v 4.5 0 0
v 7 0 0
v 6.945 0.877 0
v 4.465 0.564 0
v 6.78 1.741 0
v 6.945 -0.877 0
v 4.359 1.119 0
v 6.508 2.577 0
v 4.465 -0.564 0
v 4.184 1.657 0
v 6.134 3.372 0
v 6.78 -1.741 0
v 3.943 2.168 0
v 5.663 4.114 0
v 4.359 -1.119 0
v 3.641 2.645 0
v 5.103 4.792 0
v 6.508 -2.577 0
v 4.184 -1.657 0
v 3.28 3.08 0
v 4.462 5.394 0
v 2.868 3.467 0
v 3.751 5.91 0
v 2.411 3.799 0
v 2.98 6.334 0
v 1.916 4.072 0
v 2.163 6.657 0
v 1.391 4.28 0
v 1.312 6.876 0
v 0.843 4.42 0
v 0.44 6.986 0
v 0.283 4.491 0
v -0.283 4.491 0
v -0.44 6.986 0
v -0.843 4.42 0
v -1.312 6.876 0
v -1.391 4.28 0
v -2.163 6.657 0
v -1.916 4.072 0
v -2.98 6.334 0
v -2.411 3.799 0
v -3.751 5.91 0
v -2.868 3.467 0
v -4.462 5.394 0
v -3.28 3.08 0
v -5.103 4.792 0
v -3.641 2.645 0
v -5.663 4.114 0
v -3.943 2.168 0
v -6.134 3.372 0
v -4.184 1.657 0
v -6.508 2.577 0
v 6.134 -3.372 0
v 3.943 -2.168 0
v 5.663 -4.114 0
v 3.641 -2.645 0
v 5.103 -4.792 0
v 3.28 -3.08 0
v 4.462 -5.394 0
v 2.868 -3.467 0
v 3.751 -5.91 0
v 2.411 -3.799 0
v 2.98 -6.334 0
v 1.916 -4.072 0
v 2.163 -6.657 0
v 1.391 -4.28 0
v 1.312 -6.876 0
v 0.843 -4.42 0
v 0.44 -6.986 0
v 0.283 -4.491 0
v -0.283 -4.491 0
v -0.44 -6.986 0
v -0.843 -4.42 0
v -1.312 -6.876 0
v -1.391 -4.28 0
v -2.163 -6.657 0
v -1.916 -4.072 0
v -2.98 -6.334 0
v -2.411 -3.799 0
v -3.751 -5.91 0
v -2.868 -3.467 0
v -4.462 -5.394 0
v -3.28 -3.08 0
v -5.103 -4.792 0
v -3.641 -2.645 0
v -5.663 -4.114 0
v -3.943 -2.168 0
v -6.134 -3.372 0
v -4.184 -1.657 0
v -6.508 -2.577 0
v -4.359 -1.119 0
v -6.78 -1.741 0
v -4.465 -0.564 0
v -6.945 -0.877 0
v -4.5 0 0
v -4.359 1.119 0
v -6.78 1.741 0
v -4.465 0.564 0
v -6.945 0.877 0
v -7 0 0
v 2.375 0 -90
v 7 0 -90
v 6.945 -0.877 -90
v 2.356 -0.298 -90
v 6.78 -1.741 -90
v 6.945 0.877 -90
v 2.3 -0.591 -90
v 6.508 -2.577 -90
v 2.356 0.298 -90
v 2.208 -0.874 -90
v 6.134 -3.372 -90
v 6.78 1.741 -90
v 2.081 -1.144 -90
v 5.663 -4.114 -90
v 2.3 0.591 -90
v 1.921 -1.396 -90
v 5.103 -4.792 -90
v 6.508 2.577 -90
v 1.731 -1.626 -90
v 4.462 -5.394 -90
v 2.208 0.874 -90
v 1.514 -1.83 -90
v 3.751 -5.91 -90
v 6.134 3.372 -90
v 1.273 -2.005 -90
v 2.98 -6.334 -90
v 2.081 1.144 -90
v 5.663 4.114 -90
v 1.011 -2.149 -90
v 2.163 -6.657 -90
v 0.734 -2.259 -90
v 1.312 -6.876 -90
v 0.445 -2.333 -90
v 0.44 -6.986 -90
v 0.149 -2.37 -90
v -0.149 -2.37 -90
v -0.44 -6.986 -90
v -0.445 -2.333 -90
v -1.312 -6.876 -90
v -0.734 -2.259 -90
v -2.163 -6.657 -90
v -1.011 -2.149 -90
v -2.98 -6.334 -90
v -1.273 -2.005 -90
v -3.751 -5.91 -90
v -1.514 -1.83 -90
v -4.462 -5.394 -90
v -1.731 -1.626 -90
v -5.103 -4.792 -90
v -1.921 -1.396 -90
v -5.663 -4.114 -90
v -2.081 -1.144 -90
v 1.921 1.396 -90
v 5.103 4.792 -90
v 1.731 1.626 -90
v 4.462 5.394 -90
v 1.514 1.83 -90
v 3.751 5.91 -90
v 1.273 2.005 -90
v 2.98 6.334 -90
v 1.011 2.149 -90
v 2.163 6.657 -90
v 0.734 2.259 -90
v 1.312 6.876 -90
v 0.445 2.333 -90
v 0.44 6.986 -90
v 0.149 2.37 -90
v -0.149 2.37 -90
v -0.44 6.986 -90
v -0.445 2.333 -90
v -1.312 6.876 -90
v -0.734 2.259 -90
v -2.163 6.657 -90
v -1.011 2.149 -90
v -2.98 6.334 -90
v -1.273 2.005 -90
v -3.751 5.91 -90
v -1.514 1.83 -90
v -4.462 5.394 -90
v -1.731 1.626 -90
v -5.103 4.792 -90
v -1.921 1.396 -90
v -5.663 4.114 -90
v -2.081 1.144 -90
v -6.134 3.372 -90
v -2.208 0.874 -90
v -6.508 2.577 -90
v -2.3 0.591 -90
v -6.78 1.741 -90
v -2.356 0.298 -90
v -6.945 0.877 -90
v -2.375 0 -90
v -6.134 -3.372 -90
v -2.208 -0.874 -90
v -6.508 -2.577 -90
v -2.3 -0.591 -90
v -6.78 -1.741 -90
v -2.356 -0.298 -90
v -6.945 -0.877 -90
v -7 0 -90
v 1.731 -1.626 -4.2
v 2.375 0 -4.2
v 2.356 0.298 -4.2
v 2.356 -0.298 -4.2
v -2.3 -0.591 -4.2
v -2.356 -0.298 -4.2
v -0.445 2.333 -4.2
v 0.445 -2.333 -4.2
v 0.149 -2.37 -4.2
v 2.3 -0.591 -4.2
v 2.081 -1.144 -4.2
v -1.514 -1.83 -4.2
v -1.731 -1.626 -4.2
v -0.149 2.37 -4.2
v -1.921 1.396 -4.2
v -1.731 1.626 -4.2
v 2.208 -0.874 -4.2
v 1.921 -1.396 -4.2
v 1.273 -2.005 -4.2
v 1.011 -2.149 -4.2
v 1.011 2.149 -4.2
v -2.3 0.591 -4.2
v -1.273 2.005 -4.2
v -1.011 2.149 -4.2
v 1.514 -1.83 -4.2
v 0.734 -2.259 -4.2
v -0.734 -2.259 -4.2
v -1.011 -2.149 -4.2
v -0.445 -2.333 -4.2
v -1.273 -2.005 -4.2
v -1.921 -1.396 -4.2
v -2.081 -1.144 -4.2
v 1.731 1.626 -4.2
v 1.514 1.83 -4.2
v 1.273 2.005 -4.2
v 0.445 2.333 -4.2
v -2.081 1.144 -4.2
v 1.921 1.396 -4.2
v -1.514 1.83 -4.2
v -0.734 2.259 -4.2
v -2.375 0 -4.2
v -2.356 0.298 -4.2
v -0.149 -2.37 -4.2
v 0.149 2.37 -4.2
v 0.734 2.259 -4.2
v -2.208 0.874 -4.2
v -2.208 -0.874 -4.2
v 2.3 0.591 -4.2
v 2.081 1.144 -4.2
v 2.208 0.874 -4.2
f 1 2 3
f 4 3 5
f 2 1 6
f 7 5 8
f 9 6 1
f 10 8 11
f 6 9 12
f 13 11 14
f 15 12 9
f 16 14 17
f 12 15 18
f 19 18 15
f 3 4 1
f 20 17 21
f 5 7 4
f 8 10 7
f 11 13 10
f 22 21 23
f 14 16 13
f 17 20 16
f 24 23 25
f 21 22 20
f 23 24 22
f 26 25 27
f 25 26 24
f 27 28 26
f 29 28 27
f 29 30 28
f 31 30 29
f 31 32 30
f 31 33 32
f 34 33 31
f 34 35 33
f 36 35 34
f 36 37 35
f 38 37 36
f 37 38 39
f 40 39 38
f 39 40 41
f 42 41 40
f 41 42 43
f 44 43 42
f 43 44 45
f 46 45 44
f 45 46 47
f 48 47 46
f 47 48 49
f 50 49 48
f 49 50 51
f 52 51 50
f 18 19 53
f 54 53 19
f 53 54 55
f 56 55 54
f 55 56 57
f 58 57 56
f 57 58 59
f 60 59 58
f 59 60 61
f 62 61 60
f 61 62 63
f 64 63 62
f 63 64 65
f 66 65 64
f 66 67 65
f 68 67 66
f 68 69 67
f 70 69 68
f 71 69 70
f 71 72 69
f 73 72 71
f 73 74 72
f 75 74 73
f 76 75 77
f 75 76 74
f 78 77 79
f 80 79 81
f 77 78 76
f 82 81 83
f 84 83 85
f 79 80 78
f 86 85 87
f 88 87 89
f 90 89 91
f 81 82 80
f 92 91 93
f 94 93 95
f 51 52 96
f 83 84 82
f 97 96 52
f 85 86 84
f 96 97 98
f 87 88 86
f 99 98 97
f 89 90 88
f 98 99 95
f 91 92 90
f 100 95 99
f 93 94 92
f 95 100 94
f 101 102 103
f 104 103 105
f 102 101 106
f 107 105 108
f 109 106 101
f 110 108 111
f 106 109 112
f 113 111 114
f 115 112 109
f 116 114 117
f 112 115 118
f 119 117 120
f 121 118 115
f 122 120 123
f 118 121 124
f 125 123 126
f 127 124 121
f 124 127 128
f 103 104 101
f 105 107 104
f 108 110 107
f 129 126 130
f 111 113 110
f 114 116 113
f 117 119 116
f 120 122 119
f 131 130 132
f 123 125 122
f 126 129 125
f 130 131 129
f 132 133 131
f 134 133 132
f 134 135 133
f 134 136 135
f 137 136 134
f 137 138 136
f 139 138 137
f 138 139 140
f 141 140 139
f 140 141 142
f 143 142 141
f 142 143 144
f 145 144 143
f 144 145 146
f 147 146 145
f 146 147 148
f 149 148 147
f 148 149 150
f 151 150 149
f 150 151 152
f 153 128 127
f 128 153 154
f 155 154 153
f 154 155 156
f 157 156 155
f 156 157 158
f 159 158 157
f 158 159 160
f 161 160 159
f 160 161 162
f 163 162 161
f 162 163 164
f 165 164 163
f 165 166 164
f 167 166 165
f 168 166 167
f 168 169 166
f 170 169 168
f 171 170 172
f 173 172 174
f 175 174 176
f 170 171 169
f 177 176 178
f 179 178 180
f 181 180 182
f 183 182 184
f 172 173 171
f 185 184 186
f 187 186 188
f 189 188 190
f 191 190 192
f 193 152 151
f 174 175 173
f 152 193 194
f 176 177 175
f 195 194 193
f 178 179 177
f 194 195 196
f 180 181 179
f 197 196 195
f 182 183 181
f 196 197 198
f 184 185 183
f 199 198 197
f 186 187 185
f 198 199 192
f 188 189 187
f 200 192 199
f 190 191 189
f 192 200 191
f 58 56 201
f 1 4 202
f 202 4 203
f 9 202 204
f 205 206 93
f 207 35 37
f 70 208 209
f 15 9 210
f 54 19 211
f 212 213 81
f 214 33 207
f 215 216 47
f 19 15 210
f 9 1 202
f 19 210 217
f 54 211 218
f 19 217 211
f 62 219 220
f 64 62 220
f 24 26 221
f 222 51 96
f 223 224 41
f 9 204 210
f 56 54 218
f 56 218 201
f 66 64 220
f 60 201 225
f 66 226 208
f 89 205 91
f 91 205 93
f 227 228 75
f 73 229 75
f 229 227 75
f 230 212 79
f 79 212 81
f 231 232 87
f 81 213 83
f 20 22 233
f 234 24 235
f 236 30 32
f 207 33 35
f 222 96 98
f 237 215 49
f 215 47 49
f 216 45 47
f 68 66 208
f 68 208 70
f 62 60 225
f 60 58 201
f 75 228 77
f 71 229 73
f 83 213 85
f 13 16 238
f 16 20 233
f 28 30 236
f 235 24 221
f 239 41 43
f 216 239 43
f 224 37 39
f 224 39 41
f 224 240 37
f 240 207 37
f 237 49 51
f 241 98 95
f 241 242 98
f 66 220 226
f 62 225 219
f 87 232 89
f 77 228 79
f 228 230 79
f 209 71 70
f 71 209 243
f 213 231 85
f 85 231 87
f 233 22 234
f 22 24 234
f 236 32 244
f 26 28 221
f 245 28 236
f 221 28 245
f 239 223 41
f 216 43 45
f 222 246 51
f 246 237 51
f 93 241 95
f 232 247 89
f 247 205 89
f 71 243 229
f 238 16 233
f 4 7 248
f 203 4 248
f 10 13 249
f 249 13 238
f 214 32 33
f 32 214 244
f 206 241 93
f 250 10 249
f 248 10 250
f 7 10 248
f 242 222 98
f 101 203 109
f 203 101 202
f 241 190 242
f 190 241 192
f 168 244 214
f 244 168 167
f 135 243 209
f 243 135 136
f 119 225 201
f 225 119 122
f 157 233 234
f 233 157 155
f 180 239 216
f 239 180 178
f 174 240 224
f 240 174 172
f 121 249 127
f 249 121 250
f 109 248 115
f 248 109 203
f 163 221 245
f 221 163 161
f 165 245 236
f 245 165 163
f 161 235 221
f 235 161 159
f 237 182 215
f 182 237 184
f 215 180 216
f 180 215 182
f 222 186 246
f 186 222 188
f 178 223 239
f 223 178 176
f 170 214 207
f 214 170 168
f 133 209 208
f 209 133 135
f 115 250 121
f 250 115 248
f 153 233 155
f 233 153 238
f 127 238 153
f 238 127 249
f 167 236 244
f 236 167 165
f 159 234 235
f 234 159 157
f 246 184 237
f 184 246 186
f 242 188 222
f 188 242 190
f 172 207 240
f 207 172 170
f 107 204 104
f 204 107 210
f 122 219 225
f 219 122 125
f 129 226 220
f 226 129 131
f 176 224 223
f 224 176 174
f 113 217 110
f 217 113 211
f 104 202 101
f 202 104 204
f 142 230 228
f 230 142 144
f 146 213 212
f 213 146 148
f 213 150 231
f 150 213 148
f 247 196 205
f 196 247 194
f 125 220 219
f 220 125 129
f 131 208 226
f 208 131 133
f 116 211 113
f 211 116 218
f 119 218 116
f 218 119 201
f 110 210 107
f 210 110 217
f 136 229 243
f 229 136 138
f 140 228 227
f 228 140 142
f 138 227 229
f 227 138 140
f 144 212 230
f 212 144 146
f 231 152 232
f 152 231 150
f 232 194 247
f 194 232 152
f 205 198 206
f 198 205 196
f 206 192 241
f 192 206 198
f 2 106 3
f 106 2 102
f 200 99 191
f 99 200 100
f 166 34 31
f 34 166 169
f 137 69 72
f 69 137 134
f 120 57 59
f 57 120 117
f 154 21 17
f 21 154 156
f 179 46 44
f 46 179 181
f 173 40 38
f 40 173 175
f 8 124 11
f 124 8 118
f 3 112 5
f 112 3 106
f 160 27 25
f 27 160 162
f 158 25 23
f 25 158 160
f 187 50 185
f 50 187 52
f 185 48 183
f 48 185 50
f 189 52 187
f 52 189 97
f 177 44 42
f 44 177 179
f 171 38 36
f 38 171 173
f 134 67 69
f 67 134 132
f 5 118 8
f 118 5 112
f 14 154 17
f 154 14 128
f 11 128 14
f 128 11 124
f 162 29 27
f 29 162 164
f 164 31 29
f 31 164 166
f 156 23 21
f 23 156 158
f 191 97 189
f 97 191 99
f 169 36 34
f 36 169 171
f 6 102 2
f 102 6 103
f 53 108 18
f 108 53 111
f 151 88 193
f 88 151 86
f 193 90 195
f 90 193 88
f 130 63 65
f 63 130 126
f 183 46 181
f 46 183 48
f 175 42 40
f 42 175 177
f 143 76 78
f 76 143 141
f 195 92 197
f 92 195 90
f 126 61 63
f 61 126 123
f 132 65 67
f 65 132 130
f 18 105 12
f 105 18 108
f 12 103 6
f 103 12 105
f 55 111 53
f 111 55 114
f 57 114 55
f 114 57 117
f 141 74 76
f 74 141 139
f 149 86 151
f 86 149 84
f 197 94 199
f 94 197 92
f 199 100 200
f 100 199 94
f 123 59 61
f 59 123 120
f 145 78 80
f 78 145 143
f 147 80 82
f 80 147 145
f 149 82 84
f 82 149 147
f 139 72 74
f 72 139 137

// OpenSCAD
$fn = 50;


difference() {
	union() {
		translate(v = [0, 0, -90.0000000000]) {
			cylinder(h = 90, r = 7.0000000000);
		}
	}
	union() {
		translate(v = [0, 0, 0]) {
			rotate(a = [0, 0, 0]) {
				difference() {
					union() {
						#translate(v = [0, 0, -90.0000000000]) {
							cylinder(h = 90, r = 2.2500000000);
						}
						#translate(v = [0, 0, -4.2000000000]) {
							cylinder(h = 4.2000000000, r1 = 2.3750000000, r2 = 4.5000000000);
						}
						#translate(v = [0, 0, -90.0000000000]) {
							cylinder(h = 90, r = 2.3750000000);
						}
						#translate(v = [0, 0, -90.0000000000]) {
							cylinder(h = 90, r = 2.2500000000);
						}
					}
					union();
				}
			}
		}
	}
}
